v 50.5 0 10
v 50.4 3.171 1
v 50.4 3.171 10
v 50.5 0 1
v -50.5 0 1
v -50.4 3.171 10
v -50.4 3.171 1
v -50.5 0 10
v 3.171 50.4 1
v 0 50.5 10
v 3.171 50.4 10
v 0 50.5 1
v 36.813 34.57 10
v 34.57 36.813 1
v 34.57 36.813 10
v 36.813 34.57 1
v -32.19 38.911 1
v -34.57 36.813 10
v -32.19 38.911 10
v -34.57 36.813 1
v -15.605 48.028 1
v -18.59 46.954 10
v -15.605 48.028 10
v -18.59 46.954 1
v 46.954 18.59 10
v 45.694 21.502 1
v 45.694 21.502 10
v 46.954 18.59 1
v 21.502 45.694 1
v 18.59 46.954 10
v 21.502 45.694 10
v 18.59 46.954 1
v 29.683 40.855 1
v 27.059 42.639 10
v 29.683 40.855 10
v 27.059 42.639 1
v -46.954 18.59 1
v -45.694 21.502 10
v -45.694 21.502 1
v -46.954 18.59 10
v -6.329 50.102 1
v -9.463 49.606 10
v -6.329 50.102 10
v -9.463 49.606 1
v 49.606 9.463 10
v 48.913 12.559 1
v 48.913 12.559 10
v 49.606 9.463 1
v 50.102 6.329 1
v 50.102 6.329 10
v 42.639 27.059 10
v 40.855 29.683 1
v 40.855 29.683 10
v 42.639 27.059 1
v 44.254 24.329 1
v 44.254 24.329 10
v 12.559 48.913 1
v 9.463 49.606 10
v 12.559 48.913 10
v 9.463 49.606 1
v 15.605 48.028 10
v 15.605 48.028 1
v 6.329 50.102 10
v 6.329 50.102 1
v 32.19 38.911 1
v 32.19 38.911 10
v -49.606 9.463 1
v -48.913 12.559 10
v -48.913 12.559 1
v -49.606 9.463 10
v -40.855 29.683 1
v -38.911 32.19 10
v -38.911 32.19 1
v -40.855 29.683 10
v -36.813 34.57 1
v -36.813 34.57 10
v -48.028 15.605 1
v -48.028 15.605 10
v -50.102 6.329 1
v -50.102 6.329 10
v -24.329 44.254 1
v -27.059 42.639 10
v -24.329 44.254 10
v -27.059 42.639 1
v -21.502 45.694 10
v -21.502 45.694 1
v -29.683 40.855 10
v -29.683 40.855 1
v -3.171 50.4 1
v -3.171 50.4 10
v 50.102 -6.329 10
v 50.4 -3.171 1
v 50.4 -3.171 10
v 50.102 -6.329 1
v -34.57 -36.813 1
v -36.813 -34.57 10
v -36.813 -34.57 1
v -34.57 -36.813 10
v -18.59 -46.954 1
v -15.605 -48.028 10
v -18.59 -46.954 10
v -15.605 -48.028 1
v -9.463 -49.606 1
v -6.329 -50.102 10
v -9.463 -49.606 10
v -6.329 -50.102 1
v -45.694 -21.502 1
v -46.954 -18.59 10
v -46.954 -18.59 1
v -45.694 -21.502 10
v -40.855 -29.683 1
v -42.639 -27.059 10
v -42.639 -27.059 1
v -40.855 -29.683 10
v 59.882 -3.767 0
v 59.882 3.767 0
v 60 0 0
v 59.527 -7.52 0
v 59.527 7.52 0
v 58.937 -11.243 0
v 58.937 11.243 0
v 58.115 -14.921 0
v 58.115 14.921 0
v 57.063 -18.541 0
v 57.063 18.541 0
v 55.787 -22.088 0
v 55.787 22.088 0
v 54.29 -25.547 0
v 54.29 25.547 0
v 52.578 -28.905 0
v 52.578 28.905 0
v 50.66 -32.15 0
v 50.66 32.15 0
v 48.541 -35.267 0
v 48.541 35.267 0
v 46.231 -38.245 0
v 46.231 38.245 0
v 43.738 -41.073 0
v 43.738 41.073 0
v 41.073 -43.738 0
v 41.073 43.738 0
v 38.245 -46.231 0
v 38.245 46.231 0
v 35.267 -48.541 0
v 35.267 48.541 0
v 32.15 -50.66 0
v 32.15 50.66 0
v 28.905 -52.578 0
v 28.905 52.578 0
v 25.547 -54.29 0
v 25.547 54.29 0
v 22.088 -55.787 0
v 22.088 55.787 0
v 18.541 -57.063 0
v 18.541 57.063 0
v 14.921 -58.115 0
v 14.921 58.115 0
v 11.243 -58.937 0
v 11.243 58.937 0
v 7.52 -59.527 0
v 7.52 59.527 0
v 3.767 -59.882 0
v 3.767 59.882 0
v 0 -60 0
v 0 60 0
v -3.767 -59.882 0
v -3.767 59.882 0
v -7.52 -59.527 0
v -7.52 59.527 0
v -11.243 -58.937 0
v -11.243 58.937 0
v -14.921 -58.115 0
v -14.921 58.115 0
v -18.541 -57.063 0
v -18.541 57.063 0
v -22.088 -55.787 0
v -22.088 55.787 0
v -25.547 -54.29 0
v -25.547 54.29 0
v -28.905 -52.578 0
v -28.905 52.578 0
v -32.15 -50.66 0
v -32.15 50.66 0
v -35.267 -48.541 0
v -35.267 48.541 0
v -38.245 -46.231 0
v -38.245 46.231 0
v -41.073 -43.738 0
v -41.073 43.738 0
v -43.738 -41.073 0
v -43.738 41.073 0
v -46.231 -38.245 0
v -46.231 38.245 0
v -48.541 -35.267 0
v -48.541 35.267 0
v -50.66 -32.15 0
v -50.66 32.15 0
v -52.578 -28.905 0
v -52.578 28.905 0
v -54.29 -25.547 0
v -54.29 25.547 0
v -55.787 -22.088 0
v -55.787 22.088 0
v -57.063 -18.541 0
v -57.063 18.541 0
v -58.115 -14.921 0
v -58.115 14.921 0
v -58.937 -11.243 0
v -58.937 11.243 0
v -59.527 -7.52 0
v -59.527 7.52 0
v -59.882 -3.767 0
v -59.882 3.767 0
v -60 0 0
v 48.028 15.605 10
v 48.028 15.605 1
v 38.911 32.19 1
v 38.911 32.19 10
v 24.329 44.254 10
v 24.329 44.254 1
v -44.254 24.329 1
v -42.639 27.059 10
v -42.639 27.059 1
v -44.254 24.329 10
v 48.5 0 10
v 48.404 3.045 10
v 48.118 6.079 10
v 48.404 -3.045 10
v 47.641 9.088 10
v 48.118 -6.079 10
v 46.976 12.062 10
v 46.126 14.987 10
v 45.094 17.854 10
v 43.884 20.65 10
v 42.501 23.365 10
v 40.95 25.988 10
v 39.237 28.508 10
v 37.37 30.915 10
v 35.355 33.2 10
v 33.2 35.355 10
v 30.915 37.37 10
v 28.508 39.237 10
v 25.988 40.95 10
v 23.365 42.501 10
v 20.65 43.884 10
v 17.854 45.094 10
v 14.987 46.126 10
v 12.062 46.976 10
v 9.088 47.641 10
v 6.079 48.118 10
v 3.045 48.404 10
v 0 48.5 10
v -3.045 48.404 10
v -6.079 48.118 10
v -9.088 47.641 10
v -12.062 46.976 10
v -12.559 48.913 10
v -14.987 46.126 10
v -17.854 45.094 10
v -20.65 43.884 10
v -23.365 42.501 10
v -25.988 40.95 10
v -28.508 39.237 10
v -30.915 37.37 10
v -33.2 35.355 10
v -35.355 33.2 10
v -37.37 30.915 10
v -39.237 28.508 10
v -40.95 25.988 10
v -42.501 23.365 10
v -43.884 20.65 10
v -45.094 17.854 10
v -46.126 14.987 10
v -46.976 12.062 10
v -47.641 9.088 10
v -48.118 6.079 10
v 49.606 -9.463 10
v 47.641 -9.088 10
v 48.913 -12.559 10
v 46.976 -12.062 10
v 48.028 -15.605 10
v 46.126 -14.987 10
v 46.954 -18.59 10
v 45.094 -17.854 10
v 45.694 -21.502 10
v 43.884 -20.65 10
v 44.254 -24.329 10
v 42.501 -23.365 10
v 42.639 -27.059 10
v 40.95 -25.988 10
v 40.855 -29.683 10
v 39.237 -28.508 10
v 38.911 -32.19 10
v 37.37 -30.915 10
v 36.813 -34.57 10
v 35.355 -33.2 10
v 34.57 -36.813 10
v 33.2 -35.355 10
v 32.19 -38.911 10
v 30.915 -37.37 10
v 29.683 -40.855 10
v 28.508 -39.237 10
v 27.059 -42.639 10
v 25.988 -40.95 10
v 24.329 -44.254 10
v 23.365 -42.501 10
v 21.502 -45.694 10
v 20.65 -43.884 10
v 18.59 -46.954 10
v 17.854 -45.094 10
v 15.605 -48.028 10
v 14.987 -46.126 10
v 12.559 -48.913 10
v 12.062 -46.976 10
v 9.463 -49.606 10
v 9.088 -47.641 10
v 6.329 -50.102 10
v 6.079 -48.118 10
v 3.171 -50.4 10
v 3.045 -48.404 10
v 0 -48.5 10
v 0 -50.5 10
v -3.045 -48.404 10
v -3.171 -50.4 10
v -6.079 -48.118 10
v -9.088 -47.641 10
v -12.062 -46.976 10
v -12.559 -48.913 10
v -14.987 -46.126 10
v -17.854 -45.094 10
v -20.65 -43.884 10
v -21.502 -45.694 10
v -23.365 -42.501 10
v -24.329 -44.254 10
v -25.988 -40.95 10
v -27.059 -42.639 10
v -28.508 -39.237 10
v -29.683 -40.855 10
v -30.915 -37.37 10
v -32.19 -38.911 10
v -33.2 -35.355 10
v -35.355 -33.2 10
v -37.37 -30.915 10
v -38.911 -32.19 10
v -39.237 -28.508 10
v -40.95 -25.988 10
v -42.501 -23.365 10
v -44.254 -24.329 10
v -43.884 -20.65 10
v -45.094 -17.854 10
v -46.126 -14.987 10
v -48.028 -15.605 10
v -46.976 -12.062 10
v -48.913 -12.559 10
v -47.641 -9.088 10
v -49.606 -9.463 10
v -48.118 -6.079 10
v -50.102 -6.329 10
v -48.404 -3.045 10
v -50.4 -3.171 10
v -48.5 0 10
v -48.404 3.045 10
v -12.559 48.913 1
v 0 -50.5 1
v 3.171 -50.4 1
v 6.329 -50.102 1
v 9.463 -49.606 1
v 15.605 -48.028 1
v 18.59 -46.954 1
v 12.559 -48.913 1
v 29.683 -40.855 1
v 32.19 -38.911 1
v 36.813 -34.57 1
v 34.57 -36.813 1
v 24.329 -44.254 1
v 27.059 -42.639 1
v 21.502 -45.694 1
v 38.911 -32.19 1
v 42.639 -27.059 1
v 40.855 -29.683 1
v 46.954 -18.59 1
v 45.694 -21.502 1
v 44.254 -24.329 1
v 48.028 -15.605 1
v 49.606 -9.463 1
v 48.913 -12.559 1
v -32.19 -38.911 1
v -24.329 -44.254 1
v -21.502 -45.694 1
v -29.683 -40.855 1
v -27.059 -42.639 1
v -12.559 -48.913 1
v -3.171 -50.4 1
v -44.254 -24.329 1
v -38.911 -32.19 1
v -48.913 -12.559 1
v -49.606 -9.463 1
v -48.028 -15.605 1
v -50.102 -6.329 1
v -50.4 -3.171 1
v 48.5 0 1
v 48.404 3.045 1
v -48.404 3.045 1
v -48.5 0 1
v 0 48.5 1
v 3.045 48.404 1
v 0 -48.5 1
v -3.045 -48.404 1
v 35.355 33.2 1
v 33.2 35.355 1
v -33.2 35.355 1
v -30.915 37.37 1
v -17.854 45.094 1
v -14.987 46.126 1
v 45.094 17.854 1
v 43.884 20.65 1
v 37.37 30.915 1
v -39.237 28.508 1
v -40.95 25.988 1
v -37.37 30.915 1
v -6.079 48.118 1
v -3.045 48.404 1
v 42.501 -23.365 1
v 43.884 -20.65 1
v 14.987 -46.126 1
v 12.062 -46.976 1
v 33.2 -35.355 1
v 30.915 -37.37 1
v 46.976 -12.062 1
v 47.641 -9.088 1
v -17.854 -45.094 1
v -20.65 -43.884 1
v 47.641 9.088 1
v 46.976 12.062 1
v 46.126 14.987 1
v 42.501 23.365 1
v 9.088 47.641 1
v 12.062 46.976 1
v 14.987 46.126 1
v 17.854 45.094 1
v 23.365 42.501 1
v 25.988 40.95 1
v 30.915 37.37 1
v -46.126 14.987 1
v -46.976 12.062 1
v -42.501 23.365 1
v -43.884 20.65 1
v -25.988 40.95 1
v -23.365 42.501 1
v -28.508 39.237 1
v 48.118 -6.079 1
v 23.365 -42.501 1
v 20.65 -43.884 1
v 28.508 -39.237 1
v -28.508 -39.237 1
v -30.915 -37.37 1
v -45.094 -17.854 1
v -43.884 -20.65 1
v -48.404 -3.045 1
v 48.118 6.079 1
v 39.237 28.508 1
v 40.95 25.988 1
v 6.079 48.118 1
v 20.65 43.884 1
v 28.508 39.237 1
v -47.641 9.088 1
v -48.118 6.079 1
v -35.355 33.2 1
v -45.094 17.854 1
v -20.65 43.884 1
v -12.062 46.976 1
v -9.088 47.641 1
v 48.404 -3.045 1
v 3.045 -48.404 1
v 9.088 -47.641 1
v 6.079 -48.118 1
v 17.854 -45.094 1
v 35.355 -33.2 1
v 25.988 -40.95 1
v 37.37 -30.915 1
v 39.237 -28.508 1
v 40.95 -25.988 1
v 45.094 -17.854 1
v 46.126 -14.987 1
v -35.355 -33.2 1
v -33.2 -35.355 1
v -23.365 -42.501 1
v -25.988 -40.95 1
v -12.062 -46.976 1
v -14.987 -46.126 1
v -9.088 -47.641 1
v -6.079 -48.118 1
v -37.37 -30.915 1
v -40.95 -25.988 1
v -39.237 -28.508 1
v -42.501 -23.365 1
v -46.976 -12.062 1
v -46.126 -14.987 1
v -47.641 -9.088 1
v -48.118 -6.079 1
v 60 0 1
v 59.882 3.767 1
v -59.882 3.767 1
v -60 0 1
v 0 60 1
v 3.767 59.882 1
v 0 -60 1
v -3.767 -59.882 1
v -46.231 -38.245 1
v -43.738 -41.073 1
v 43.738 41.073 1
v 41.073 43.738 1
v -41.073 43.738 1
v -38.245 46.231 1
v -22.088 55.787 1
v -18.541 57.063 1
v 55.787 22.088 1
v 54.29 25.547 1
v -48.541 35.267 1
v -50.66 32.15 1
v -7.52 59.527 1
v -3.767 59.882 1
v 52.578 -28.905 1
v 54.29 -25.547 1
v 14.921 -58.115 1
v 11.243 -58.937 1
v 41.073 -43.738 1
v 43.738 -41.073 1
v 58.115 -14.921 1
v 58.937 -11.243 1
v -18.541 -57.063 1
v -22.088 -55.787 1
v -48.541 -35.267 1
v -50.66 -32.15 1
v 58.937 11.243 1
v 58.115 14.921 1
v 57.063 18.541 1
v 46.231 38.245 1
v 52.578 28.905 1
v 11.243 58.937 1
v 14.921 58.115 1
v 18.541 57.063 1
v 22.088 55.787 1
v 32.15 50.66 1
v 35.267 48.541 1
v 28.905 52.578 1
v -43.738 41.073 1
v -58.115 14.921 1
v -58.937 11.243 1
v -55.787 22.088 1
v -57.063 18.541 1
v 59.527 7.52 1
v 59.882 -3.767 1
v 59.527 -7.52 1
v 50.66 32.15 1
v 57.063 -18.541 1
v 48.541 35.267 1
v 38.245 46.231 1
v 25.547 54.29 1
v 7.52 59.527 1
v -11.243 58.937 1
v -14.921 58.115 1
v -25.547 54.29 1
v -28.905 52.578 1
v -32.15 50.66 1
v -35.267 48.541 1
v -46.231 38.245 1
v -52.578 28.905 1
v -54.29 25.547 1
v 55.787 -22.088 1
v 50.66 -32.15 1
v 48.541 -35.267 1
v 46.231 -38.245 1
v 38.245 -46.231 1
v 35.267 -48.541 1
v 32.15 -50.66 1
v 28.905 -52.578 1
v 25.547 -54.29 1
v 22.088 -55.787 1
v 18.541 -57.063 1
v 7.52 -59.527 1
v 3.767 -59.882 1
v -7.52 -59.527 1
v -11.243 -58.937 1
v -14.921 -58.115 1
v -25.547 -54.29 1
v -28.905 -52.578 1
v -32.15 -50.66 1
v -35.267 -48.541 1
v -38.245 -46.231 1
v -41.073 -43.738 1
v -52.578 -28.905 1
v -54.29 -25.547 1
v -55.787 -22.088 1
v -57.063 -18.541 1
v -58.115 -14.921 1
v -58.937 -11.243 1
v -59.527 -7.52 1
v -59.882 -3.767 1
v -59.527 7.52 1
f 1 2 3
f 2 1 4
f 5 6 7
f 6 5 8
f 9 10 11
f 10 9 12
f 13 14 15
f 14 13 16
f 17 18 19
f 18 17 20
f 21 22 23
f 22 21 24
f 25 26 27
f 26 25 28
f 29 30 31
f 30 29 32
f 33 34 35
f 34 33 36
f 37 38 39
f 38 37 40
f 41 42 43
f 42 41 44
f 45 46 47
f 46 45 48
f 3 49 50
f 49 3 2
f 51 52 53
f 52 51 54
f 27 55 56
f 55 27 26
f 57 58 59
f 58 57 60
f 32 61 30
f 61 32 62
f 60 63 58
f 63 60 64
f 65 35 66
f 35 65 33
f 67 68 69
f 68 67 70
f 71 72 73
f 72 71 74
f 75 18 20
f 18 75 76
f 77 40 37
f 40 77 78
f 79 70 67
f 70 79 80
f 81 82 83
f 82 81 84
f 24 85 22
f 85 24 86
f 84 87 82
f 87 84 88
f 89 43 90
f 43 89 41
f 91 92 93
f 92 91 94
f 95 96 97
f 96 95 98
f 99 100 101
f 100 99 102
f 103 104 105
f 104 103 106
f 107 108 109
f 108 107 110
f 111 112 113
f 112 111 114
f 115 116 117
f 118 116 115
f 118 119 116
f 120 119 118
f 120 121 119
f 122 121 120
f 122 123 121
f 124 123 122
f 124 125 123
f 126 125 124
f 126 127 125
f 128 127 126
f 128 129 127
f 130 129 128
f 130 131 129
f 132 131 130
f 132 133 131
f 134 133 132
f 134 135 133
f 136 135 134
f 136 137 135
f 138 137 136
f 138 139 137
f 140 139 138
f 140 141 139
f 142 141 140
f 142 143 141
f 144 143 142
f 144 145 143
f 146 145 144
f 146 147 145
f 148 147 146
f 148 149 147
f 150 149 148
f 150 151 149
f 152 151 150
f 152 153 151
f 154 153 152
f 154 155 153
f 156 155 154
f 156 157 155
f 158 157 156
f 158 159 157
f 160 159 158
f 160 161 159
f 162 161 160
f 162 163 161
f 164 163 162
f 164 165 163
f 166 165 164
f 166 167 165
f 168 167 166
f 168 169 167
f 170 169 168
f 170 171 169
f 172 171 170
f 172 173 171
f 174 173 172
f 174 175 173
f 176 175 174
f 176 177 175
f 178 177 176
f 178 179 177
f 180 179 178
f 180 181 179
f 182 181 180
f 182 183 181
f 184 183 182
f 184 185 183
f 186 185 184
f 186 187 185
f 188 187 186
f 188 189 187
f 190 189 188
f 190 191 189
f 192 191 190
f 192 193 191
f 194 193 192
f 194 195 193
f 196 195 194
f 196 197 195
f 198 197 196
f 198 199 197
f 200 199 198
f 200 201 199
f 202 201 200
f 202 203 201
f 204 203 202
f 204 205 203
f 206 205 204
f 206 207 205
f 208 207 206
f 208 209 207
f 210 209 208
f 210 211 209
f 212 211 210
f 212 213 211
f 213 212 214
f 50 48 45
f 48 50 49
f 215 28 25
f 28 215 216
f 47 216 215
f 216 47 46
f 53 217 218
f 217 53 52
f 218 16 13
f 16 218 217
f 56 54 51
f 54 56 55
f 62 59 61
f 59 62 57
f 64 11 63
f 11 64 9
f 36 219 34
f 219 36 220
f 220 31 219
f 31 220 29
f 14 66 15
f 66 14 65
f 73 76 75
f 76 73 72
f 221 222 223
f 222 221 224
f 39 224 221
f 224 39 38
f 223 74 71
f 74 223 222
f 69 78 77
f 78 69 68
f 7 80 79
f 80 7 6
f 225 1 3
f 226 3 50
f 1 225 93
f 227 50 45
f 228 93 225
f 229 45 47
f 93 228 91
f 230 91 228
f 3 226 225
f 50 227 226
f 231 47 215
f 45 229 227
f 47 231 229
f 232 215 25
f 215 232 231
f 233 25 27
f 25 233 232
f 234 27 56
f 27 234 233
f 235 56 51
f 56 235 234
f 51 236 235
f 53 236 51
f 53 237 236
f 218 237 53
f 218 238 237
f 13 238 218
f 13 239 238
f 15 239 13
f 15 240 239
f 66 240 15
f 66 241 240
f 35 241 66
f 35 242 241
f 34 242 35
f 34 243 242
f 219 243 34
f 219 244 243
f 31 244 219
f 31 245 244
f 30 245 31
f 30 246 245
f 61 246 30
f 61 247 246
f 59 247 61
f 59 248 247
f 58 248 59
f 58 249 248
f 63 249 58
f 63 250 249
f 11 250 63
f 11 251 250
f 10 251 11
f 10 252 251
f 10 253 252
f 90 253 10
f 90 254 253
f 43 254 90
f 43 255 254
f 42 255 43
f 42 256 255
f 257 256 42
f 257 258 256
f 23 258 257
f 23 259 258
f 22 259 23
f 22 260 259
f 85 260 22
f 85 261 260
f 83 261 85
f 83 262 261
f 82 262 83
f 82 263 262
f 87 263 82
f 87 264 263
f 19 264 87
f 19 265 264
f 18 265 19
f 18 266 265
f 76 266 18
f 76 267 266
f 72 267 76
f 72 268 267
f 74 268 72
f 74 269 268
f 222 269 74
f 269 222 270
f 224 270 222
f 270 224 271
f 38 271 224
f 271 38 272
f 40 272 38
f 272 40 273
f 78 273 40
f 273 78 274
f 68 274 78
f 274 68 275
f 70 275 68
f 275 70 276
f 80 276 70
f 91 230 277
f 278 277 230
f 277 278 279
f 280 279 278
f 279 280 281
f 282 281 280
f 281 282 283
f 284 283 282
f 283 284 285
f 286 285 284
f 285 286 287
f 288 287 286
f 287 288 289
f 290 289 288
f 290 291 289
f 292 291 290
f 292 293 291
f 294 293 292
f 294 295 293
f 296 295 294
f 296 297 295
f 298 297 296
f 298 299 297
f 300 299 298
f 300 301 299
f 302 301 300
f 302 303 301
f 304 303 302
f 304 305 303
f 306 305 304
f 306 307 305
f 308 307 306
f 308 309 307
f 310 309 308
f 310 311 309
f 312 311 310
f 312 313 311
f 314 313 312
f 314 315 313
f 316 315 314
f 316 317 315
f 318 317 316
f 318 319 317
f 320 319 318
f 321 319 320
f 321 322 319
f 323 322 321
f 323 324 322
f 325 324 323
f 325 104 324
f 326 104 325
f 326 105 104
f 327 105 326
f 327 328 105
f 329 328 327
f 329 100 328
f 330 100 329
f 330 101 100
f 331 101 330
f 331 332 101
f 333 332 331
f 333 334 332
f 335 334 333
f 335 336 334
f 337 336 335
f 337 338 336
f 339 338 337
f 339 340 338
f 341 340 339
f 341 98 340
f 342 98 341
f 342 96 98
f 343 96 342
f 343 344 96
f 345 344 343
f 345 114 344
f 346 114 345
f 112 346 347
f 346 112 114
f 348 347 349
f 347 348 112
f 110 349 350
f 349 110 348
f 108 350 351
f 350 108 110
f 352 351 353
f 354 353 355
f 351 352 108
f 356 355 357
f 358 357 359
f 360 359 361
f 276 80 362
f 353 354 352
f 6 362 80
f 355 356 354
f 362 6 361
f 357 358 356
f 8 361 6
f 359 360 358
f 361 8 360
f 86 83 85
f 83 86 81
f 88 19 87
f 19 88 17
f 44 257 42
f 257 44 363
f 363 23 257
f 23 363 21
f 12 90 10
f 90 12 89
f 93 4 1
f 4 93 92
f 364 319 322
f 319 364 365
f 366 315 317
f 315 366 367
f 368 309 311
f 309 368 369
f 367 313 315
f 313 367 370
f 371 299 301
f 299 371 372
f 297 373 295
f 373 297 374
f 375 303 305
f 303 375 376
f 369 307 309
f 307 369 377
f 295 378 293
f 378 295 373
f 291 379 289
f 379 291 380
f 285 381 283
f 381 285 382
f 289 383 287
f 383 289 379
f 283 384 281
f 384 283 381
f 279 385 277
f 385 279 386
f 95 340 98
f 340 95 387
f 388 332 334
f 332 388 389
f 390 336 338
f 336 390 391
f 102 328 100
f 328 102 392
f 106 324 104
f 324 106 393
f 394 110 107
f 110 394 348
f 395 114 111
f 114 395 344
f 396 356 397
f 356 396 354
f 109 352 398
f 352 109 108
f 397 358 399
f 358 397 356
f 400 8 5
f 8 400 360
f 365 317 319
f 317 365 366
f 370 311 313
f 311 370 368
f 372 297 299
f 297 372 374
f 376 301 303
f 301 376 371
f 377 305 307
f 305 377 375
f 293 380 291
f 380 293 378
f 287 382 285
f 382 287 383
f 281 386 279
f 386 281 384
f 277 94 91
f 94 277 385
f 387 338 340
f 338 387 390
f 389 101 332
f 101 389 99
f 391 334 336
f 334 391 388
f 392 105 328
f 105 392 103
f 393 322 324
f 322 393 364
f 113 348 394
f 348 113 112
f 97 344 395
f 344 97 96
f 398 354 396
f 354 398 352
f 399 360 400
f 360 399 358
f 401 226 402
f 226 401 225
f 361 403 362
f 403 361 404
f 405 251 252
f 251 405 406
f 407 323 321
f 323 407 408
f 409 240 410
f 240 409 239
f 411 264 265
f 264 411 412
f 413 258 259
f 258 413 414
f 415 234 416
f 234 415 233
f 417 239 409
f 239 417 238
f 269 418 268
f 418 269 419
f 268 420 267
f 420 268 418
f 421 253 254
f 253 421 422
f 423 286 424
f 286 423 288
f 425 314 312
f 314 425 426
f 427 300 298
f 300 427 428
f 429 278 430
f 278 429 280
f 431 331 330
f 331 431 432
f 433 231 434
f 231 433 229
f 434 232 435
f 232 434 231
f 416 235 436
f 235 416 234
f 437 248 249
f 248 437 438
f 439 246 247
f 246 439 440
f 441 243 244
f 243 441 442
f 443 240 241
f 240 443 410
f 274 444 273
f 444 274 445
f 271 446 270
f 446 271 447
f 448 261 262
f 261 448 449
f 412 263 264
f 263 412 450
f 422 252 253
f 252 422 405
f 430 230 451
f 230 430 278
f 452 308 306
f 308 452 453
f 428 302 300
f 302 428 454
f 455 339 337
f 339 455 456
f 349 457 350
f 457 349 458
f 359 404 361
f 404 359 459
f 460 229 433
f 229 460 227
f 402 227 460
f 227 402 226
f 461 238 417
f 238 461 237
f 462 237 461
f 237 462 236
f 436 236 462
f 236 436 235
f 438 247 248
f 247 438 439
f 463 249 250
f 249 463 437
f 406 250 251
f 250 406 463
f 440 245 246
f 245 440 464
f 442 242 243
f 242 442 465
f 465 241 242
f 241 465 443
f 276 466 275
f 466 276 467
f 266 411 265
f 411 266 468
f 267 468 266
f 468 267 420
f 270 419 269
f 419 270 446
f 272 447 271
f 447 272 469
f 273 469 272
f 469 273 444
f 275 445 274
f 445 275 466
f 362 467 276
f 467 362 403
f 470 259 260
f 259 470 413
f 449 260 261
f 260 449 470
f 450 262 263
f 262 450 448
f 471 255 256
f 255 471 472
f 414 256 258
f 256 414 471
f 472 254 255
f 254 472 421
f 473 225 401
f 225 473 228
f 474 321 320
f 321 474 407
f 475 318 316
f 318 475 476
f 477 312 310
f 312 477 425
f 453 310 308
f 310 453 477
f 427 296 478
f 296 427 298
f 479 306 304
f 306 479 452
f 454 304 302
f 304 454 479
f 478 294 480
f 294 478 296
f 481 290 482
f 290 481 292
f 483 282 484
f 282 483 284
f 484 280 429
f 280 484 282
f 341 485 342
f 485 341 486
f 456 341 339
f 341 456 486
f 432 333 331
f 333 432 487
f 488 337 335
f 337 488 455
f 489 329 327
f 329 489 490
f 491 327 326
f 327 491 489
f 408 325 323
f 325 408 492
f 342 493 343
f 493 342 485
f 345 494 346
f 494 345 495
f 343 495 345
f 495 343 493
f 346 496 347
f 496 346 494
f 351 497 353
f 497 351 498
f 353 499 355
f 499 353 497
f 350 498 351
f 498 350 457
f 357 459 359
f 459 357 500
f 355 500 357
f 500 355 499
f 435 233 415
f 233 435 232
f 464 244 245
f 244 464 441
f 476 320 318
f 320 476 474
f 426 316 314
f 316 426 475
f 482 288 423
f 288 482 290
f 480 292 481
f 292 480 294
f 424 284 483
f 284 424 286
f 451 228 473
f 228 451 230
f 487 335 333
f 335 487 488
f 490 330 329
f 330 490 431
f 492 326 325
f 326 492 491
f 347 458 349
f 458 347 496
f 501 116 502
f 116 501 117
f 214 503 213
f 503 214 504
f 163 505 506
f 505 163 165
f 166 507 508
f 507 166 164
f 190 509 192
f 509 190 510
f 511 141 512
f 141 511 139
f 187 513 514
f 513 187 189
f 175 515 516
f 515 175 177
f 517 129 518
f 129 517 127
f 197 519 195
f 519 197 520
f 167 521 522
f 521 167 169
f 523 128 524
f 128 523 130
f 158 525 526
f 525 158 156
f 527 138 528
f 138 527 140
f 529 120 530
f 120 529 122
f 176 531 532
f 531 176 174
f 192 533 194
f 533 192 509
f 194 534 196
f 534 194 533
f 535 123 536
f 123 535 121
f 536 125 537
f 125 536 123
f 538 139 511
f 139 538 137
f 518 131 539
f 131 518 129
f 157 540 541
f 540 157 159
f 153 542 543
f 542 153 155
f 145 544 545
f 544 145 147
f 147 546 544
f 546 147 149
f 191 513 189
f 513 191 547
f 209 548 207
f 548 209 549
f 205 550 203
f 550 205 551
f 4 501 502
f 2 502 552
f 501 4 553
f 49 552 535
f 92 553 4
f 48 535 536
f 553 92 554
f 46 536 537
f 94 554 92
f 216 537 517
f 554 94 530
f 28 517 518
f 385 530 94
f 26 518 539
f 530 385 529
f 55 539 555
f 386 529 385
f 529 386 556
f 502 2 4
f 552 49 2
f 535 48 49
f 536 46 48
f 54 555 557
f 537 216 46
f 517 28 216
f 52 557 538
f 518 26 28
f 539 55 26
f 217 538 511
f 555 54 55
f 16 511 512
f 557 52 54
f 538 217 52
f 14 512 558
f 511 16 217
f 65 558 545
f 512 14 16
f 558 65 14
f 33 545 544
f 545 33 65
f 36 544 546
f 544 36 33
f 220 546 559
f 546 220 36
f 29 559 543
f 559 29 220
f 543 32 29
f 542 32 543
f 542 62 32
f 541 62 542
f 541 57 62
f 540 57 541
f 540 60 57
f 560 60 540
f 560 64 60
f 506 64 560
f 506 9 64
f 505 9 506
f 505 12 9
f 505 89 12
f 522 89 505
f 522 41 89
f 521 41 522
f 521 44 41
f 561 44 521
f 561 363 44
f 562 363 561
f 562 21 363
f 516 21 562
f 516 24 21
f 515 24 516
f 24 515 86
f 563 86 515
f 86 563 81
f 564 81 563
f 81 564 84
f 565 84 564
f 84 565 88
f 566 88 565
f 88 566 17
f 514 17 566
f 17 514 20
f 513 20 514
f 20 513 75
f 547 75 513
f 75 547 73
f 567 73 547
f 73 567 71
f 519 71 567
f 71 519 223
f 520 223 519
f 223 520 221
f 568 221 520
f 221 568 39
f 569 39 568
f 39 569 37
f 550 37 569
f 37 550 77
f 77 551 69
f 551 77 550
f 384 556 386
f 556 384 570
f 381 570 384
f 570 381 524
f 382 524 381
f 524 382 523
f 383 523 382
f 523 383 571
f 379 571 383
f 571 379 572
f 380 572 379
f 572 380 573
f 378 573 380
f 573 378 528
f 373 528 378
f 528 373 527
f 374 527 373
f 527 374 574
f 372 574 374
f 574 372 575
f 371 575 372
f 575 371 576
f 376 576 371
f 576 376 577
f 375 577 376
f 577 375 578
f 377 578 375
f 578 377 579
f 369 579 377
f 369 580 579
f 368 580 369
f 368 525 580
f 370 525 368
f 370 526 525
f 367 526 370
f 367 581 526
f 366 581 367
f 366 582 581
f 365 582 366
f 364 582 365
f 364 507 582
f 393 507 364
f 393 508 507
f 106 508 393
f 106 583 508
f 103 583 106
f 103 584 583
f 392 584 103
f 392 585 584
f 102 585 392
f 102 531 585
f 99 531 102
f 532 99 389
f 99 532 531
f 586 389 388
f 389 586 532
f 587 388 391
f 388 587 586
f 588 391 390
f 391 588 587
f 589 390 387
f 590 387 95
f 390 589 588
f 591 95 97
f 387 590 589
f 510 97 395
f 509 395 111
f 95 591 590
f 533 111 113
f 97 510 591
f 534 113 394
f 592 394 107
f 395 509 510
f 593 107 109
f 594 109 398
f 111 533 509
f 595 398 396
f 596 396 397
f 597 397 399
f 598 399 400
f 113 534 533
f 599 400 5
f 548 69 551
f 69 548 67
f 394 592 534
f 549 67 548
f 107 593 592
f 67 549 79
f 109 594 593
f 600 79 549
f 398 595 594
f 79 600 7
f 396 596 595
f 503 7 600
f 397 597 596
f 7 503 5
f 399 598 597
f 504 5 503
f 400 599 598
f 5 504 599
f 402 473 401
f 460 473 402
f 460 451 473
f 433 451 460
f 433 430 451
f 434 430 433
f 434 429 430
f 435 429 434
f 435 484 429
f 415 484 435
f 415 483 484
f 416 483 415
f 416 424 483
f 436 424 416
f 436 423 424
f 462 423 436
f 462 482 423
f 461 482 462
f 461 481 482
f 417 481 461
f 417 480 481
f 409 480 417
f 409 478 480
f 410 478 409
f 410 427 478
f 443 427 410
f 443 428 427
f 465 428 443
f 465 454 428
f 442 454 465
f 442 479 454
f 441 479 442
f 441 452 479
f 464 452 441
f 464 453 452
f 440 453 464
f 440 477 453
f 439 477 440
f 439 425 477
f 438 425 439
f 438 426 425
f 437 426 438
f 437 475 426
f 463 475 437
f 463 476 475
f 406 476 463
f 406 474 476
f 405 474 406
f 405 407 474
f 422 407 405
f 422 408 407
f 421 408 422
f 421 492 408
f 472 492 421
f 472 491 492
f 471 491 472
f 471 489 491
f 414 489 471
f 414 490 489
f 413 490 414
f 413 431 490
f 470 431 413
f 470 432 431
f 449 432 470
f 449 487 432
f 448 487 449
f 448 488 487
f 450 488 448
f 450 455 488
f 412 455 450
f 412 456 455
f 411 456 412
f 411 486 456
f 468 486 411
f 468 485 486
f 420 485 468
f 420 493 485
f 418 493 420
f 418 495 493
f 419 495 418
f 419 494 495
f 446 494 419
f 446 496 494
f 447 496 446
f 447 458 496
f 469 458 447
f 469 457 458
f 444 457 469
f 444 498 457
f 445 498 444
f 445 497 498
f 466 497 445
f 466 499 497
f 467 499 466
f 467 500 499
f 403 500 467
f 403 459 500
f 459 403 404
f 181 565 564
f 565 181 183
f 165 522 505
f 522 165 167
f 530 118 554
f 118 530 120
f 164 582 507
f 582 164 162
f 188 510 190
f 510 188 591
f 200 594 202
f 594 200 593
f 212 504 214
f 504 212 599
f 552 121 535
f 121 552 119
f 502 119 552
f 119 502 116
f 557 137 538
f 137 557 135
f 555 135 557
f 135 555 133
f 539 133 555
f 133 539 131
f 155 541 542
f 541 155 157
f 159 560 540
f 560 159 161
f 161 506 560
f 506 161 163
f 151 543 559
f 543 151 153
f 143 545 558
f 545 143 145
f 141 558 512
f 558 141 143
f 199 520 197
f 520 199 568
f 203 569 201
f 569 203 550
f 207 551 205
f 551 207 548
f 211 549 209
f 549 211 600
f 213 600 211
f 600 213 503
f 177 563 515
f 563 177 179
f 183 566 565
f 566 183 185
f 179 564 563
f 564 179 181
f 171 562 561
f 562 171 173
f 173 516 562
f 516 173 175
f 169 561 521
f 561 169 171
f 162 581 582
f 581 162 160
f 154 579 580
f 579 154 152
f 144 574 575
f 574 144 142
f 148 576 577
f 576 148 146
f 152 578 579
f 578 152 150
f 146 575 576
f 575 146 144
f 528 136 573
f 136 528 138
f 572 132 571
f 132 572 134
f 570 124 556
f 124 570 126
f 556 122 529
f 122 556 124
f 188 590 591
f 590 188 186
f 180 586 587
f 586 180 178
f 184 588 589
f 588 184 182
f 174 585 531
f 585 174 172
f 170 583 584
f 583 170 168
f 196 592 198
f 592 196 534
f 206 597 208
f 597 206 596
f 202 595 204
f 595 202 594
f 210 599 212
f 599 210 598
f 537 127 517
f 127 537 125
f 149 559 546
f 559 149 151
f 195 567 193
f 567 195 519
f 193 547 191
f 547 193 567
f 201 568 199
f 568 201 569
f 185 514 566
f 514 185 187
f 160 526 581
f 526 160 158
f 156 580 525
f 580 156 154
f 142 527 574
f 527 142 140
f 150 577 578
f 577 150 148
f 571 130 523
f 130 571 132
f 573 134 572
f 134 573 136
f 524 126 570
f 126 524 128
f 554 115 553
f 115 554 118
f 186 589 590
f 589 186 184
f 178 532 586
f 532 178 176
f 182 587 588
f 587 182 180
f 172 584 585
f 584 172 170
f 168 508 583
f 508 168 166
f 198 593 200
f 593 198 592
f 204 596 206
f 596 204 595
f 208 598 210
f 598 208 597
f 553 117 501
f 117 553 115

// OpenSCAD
$fn = 100;

cylinder(d = 120, h = 1);
difference(){
    cylinder(d = 101, h = 10);
    cylinder(d = 101-4, h = 11);
}
